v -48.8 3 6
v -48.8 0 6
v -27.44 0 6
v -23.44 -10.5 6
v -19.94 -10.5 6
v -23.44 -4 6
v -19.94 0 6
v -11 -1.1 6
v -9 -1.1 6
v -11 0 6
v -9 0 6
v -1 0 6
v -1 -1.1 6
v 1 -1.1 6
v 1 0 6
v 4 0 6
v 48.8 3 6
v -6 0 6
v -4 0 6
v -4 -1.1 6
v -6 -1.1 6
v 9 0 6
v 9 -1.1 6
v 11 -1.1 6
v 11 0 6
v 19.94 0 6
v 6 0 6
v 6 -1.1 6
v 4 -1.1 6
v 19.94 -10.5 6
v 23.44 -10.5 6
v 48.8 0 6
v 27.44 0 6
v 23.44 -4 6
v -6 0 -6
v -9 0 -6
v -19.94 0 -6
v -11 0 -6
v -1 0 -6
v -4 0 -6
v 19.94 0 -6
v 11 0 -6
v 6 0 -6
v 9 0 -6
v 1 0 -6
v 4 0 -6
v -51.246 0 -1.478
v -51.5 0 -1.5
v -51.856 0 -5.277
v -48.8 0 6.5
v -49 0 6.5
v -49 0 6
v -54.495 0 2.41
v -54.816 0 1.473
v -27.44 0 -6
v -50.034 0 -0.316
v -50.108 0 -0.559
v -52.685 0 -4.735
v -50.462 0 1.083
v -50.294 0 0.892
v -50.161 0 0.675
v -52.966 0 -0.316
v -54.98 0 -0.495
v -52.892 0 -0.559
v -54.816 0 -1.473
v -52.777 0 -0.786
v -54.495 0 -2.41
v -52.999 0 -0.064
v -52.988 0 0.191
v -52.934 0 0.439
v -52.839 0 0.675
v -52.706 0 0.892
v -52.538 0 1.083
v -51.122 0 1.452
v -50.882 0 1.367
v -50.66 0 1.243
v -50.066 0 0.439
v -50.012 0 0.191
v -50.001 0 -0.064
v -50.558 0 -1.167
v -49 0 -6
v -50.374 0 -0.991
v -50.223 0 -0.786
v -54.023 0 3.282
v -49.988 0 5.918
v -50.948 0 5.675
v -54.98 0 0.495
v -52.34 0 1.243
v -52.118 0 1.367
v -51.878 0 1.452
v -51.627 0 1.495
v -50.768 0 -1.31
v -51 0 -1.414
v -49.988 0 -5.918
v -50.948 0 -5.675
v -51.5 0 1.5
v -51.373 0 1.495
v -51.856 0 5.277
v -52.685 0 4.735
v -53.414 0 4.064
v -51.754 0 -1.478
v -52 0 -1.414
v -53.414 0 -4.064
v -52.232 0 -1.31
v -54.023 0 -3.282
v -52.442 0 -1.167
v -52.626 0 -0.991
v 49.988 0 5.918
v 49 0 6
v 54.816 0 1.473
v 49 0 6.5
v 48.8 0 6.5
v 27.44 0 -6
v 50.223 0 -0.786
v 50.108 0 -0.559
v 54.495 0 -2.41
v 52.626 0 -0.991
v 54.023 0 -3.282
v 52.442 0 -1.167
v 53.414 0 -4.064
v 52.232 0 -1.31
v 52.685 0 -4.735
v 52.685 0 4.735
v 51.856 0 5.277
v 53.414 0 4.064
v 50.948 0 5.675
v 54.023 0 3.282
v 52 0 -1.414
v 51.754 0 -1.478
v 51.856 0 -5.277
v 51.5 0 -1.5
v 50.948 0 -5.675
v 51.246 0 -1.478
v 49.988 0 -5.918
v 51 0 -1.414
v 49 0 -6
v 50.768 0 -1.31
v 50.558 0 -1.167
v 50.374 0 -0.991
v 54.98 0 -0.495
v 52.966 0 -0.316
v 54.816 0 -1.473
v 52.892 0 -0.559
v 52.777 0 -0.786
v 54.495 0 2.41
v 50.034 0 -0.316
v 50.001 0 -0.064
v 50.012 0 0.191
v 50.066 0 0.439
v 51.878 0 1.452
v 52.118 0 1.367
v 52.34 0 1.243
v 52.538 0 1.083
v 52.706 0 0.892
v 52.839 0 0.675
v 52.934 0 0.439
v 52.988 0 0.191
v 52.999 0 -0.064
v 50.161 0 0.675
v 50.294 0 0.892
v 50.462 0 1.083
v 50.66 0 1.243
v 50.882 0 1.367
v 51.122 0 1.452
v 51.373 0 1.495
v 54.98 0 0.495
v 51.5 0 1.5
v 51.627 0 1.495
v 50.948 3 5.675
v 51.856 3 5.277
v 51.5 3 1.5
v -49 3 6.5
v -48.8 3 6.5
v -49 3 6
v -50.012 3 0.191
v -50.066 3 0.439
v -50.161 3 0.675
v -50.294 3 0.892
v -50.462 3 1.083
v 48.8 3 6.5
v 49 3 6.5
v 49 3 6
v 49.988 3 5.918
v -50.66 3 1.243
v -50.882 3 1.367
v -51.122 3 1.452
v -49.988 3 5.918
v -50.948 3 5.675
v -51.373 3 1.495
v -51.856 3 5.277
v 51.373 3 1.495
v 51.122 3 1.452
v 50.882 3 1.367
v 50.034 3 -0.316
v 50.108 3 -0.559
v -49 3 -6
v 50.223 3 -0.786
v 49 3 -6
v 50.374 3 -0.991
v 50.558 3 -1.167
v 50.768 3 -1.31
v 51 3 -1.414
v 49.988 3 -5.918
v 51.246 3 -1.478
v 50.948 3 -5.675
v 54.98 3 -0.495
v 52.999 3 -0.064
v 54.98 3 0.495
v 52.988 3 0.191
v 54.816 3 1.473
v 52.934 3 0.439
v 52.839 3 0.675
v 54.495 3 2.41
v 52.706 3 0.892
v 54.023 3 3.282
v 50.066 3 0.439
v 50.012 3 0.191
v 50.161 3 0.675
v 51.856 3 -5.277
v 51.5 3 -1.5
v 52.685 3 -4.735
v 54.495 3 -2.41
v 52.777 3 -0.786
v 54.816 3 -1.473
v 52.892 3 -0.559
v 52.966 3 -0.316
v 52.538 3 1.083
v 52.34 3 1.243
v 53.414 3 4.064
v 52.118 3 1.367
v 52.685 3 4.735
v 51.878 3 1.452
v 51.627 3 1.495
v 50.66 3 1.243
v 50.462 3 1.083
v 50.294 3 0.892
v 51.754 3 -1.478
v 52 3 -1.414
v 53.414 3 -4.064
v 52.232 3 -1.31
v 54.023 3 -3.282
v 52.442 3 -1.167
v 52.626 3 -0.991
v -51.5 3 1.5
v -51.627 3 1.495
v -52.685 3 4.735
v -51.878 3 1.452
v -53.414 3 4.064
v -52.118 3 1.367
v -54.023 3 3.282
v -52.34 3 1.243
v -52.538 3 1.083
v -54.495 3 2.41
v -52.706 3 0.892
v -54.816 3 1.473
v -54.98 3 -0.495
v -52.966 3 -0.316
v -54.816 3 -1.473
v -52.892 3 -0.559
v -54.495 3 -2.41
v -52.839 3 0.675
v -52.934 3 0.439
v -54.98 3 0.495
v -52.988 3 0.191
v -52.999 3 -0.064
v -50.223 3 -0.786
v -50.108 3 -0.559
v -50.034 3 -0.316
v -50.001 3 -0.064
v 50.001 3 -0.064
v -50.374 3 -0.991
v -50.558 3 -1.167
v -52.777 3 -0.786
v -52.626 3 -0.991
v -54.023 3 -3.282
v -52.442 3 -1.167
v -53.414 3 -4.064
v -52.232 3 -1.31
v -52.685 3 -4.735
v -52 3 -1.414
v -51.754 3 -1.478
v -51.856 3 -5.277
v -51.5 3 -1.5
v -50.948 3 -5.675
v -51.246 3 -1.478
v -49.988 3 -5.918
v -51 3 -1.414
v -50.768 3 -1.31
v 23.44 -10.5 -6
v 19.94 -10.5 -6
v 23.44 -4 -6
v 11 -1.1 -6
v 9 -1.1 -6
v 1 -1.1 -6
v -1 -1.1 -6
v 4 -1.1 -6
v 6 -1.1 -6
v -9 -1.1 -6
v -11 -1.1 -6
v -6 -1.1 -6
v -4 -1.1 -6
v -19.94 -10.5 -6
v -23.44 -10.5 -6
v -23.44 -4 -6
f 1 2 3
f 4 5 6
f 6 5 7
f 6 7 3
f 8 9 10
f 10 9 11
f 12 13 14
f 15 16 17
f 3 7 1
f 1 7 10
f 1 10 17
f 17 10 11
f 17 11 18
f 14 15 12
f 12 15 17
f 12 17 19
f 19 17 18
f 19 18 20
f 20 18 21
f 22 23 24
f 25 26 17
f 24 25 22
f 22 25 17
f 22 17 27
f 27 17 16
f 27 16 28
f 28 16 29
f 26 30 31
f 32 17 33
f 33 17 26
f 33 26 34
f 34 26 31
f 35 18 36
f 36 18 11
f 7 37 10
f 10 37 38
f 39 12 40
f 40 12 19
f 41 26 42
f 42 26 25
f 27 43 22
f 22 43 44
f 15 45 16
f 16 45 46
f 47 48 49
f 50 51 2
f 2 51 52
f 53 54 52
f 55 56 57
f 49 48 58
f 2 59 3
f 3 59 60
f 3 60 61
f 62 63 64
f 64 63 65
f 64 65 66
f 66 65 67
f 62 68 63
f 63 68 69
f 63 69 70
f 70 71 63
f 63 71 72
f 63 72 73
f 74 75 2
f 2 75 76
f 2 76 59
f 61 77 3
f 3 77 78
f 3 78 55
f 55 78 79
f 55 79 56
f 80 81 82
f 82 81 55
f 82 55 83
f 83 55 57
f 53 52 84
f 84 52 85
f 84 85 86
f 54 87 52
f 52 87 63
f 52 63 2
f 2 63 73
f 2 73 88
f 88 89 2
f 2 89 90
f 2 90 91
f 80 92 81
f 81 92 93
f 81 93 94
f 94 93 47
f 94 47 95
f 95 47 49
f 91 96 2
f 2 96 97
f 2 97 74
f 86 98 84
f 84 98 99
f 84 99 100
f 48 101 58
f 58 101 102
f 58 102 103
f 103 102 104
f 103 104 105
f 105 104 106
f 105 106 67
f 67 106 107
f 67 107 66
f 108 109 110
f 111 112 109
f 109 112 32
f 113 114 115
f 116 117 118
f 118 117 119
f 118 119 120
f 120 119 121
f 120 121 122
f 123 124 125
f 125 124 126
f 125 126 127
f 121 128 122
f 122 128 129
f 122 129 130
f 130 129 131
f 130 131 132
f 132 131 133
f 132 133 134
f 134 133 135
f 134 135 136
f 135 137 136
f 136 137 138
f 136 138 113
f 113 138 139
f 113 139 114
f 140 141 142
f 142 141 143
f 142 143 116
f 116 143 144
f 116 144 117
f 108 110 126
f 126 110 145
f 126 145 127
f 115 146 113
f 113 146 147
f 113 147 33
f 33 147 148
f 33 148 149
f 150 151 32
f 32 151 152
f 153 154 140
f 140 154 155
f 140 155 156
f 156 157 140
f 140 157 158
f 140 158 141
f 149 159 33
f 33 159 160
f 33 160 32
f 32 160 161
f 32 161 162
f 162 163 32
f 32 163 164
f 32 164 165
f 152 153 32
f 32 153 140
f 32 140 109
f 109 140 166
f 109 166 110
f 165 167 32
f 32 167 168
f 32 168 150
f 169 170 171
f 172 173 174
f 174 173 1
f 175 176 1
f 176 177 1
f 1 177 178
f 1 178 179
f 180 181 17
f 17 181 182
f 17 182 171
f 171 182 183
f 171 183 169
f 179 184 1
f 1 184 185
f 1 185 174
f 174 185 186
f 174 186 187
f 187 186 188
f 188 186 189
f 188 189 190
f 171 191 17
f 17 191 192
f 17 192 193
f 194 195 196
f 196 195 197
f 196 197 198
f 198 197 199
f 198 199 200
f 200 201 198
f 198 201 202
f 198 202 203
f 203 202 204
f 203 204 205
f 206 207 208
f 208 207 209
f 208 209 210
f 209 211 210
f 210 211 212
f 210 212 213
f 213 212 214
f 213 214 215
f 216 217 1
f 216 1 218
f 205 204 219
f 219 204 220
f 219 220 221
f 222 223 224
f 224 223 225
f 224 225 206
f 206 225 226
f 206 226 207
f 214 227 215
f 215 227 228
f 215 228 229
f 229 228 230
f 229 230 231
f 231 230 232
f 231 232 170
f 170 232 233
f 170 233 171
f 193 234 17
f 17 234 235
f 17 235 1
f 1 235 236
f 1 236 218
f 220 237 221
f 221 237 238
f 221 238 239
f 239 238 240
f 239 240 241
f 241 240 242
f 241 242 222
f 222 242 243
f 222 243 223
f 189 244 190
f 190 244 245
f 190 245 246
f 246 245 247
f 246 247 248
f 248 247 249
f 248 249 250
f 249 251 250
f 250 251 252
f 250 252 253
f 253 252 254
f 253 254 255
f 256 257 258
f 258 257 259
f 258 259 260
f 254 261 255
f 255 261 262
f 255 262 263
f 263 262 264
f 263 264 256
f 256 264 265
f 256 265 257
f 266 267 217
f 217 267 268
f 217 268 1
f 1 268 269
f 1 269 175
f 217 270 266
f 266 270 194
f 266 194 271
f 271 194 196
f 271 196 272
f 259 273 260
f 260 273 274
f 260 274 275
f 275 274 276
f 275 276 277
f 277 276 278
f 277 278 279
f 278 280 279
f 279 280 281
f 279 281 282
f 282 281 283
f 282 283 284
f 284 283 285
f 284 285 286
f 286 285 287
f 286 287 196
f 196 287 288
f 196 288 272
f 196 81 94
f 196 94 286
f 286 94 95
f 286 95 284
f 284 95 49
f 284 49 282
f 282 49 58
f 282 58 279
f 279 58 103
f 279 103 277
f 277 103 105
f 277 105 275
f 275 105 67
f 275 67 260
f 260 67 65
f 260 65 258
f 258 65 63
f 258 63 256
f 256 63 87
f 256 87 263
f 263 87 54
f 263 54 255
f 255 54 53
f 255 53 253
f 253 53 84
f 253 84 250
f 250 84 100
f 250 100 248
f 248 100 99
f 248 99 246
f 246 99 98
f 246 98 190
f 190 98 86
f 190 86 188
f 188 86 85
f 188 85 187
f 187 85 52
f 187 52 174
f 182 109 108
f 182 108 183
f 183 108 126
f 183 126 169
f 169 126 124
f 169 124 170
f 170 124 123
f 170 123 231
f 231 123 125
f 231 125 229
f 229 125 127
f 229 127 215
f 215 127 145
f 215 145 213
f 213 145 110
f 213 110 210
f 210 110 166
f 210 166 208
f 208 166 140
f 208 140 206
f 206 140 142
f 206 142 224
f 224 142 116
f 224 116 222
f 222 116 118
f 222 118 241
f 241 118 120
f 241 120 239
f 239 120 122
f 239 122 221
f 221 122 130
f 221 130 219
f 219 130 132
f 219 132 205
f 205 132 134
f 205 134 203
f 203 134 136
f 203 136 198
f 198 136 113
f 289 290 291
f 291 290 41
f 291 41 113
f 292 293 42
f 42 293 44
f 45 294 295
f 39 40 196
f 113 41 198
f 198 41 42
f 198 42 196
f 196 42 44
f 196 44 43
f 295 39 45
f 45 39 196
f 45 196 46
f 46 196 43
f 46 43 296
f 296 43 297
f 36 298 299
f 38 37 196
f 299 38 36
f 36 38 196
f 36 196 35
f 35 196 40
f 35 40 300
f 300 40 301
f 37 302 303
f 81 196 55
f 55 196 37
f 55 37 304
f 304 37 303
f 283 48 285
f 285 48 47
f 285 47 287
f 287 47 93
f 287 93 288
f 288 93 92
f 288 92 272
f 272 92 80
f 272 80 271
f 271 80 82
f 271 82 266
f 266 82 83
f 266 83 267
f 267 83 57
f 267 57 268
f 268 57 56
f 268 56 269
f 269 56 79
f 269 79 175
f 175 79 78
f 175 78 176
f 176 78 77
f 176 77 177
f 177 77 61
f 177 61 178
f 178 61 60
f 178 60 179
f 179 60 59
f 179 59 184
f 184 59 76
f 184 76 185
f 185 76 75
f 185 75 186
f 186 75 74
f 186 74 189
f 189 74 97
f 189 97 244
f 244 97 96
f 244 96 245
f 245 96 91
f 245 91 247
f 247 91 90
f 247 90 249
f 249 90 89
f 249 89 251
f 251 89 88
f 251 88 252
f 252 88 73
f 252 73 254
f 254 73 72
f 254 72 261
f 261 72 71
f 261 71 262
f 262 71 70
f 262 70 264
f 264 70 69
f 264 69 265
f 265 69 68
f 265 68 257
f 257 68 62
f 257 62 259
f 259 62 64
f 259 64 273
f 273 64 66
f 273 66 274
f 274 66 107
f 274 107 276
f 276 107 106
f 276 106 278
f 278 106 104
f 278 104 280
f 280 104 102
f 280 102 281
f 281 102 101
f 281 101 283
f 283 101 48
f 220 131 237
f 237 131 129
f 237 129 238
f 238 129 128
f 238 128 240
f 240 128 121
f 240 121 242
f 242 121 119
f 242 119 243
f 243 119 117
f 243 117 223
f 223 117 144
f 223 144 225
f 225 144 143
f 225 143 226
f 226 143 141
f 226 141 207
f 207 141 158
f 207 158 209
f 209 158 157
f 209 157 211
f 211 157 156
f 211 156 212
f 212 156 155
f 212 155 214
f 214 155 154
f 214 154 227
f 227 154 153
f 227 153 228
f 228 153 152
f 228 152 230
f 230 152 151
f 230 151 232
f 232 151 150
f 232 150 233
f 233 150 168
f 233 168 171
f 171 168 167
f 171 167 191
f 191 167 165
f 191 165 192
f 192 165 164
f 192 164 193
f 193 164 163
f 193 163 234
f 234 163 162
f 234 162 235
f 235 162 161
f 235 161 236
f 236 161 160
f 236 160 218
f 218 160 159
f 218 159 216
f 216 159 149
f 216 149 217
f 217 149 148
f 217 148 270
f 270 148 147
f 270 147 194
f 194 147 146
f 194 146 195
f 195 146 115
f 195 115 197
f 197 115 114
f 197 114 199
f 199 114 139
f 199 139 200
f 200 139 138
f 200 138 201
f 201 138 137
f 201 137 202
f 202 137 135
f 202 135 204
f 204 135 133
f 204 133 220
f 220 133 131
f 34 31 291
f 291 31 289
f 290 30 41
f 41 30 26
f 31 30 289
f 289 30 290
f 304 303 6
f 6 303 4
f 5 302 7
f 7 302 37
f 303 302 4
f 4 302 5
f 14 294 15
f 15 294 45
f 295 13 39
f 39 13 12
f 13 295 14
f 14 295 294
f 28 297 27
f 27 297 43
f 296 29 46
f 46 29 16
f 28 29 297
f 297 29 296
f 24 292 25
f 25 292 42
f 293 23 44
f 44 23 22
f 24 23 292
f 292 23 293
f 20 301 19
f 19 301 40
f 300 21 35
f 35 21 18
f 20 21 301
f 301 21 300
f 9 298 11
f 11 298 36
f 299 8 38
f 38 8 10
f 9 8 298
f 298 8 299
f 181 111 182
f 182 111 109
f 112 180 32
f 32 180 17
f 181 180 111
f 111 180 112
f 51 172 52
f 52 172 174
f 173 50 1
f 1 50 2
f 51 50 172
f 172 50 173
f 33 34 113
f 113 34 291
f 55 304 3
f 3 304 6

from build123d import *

# Parameters (mm, degrees)
SKETCH1_R           = 1.5
BOSS_EXTRUDE1_DEPTH = 3
SKETCH4_W           = 3.5
SKETCH4_H           = 12
BOSS_EXTRUDE3_DEPTH = 10.5
SKETCH5_W           = 2
SKETCH5_H           = 12
BOSS_EXTRUDE4_DEPTH = 1.1
SKETCH6_W           = 0.2
SKETCH6_H           = 3
BOSS_EXTRUDE5_DEPTH = 0.5
CHAMFER1_SIZE       = 4


with BuildPart() as part:
    # Sketch1 → Boss-Extrude1 (new body)
    with BuildSketch(Plane(origin=(0, 0, 0), x_dir=(1, 0, 0), z_dir=(0, 1, 0))):
        with BuildLine():
            Line((-49, 6), (49, 6))
            ThreePointArc((49, 6), (55, 0), (49, -6))
            Line((49, -6), (-49, -6))
            ThreePointArc((-49, -6), (-55, 0), (-49, 6))
        make_face()
        with Locations(Location((-51.5, 0, 0), (0, 0, 270))):
            Circle(SKETCH1_R, mode=Mode.SUBTRACT)
        with Locations(Location((51.5, 0, 0), (0, 0, 270))):
            Circle(SKETCH1_R, mode=Mode.SUBTRACT)
    extrude(amount=BOSS_EXTRUDE1_DEPTH)

    # Sketch4 → Boss-Extrude3 (add)
    with BuildSketch(Plane.XZ):
        with Locations((-21.690023983, 0)):
            Rectangle(SKETCH4_W, SKETCH4_H)
        with Locations((21.690023983, 0)):
            Rectangle(SKETCH4_W, SKETCH4_H)
    extrude(amount=BOSS_EXTRUDE3_DEPTH)

    # Sketch5 → Boss-Extrude4 (add)
    with BuildSketch(Plane.XZ):
        with Locations((5, 0)):
            Rectangle(SKETCH5_W, SKETCH5_H)
        Rectangle(SKETCH5_W, SKETCH5_H)
        with Locations((10, 0)):
            Rectangle(SKETCH5_W, SKETCH5_H)
        with Locations((-5, 0)):
            Rectangle(SKETCH5_W, SKETCH5_H)
        with Locations((-10, 0)):
            Rectangle(SKETCH5_W, SKETCH5_H)
    extrude(amount=BOSS_EXTRUDE4_DEPTH)

    # Sketch6 → Boss-Extrude5 (add)
    with BuildSketch(Plane.XY.offset(6)):
        with Locations((48.9, 1.5)):
            Rectangle(SKETCH6_W, SKETCH6_H)
        with Locations((-48.9, 1.5)):
            Rectangle(SKETCH6_W, SKETCH6_H)
    extrude(amount=BOSS_EXTRUDE5_DEPTH)

    # Chamfer1
    chamfer1_edges = [part.edges().sort_by_distance(p)[0] for p in [
        (-23.440023983, 0, 0),
        (23.440023983, 0, 0),
    ]]
    chamfer(chamfer1_edges, length=CHAMFER1_SIZE)


solid = part.part
